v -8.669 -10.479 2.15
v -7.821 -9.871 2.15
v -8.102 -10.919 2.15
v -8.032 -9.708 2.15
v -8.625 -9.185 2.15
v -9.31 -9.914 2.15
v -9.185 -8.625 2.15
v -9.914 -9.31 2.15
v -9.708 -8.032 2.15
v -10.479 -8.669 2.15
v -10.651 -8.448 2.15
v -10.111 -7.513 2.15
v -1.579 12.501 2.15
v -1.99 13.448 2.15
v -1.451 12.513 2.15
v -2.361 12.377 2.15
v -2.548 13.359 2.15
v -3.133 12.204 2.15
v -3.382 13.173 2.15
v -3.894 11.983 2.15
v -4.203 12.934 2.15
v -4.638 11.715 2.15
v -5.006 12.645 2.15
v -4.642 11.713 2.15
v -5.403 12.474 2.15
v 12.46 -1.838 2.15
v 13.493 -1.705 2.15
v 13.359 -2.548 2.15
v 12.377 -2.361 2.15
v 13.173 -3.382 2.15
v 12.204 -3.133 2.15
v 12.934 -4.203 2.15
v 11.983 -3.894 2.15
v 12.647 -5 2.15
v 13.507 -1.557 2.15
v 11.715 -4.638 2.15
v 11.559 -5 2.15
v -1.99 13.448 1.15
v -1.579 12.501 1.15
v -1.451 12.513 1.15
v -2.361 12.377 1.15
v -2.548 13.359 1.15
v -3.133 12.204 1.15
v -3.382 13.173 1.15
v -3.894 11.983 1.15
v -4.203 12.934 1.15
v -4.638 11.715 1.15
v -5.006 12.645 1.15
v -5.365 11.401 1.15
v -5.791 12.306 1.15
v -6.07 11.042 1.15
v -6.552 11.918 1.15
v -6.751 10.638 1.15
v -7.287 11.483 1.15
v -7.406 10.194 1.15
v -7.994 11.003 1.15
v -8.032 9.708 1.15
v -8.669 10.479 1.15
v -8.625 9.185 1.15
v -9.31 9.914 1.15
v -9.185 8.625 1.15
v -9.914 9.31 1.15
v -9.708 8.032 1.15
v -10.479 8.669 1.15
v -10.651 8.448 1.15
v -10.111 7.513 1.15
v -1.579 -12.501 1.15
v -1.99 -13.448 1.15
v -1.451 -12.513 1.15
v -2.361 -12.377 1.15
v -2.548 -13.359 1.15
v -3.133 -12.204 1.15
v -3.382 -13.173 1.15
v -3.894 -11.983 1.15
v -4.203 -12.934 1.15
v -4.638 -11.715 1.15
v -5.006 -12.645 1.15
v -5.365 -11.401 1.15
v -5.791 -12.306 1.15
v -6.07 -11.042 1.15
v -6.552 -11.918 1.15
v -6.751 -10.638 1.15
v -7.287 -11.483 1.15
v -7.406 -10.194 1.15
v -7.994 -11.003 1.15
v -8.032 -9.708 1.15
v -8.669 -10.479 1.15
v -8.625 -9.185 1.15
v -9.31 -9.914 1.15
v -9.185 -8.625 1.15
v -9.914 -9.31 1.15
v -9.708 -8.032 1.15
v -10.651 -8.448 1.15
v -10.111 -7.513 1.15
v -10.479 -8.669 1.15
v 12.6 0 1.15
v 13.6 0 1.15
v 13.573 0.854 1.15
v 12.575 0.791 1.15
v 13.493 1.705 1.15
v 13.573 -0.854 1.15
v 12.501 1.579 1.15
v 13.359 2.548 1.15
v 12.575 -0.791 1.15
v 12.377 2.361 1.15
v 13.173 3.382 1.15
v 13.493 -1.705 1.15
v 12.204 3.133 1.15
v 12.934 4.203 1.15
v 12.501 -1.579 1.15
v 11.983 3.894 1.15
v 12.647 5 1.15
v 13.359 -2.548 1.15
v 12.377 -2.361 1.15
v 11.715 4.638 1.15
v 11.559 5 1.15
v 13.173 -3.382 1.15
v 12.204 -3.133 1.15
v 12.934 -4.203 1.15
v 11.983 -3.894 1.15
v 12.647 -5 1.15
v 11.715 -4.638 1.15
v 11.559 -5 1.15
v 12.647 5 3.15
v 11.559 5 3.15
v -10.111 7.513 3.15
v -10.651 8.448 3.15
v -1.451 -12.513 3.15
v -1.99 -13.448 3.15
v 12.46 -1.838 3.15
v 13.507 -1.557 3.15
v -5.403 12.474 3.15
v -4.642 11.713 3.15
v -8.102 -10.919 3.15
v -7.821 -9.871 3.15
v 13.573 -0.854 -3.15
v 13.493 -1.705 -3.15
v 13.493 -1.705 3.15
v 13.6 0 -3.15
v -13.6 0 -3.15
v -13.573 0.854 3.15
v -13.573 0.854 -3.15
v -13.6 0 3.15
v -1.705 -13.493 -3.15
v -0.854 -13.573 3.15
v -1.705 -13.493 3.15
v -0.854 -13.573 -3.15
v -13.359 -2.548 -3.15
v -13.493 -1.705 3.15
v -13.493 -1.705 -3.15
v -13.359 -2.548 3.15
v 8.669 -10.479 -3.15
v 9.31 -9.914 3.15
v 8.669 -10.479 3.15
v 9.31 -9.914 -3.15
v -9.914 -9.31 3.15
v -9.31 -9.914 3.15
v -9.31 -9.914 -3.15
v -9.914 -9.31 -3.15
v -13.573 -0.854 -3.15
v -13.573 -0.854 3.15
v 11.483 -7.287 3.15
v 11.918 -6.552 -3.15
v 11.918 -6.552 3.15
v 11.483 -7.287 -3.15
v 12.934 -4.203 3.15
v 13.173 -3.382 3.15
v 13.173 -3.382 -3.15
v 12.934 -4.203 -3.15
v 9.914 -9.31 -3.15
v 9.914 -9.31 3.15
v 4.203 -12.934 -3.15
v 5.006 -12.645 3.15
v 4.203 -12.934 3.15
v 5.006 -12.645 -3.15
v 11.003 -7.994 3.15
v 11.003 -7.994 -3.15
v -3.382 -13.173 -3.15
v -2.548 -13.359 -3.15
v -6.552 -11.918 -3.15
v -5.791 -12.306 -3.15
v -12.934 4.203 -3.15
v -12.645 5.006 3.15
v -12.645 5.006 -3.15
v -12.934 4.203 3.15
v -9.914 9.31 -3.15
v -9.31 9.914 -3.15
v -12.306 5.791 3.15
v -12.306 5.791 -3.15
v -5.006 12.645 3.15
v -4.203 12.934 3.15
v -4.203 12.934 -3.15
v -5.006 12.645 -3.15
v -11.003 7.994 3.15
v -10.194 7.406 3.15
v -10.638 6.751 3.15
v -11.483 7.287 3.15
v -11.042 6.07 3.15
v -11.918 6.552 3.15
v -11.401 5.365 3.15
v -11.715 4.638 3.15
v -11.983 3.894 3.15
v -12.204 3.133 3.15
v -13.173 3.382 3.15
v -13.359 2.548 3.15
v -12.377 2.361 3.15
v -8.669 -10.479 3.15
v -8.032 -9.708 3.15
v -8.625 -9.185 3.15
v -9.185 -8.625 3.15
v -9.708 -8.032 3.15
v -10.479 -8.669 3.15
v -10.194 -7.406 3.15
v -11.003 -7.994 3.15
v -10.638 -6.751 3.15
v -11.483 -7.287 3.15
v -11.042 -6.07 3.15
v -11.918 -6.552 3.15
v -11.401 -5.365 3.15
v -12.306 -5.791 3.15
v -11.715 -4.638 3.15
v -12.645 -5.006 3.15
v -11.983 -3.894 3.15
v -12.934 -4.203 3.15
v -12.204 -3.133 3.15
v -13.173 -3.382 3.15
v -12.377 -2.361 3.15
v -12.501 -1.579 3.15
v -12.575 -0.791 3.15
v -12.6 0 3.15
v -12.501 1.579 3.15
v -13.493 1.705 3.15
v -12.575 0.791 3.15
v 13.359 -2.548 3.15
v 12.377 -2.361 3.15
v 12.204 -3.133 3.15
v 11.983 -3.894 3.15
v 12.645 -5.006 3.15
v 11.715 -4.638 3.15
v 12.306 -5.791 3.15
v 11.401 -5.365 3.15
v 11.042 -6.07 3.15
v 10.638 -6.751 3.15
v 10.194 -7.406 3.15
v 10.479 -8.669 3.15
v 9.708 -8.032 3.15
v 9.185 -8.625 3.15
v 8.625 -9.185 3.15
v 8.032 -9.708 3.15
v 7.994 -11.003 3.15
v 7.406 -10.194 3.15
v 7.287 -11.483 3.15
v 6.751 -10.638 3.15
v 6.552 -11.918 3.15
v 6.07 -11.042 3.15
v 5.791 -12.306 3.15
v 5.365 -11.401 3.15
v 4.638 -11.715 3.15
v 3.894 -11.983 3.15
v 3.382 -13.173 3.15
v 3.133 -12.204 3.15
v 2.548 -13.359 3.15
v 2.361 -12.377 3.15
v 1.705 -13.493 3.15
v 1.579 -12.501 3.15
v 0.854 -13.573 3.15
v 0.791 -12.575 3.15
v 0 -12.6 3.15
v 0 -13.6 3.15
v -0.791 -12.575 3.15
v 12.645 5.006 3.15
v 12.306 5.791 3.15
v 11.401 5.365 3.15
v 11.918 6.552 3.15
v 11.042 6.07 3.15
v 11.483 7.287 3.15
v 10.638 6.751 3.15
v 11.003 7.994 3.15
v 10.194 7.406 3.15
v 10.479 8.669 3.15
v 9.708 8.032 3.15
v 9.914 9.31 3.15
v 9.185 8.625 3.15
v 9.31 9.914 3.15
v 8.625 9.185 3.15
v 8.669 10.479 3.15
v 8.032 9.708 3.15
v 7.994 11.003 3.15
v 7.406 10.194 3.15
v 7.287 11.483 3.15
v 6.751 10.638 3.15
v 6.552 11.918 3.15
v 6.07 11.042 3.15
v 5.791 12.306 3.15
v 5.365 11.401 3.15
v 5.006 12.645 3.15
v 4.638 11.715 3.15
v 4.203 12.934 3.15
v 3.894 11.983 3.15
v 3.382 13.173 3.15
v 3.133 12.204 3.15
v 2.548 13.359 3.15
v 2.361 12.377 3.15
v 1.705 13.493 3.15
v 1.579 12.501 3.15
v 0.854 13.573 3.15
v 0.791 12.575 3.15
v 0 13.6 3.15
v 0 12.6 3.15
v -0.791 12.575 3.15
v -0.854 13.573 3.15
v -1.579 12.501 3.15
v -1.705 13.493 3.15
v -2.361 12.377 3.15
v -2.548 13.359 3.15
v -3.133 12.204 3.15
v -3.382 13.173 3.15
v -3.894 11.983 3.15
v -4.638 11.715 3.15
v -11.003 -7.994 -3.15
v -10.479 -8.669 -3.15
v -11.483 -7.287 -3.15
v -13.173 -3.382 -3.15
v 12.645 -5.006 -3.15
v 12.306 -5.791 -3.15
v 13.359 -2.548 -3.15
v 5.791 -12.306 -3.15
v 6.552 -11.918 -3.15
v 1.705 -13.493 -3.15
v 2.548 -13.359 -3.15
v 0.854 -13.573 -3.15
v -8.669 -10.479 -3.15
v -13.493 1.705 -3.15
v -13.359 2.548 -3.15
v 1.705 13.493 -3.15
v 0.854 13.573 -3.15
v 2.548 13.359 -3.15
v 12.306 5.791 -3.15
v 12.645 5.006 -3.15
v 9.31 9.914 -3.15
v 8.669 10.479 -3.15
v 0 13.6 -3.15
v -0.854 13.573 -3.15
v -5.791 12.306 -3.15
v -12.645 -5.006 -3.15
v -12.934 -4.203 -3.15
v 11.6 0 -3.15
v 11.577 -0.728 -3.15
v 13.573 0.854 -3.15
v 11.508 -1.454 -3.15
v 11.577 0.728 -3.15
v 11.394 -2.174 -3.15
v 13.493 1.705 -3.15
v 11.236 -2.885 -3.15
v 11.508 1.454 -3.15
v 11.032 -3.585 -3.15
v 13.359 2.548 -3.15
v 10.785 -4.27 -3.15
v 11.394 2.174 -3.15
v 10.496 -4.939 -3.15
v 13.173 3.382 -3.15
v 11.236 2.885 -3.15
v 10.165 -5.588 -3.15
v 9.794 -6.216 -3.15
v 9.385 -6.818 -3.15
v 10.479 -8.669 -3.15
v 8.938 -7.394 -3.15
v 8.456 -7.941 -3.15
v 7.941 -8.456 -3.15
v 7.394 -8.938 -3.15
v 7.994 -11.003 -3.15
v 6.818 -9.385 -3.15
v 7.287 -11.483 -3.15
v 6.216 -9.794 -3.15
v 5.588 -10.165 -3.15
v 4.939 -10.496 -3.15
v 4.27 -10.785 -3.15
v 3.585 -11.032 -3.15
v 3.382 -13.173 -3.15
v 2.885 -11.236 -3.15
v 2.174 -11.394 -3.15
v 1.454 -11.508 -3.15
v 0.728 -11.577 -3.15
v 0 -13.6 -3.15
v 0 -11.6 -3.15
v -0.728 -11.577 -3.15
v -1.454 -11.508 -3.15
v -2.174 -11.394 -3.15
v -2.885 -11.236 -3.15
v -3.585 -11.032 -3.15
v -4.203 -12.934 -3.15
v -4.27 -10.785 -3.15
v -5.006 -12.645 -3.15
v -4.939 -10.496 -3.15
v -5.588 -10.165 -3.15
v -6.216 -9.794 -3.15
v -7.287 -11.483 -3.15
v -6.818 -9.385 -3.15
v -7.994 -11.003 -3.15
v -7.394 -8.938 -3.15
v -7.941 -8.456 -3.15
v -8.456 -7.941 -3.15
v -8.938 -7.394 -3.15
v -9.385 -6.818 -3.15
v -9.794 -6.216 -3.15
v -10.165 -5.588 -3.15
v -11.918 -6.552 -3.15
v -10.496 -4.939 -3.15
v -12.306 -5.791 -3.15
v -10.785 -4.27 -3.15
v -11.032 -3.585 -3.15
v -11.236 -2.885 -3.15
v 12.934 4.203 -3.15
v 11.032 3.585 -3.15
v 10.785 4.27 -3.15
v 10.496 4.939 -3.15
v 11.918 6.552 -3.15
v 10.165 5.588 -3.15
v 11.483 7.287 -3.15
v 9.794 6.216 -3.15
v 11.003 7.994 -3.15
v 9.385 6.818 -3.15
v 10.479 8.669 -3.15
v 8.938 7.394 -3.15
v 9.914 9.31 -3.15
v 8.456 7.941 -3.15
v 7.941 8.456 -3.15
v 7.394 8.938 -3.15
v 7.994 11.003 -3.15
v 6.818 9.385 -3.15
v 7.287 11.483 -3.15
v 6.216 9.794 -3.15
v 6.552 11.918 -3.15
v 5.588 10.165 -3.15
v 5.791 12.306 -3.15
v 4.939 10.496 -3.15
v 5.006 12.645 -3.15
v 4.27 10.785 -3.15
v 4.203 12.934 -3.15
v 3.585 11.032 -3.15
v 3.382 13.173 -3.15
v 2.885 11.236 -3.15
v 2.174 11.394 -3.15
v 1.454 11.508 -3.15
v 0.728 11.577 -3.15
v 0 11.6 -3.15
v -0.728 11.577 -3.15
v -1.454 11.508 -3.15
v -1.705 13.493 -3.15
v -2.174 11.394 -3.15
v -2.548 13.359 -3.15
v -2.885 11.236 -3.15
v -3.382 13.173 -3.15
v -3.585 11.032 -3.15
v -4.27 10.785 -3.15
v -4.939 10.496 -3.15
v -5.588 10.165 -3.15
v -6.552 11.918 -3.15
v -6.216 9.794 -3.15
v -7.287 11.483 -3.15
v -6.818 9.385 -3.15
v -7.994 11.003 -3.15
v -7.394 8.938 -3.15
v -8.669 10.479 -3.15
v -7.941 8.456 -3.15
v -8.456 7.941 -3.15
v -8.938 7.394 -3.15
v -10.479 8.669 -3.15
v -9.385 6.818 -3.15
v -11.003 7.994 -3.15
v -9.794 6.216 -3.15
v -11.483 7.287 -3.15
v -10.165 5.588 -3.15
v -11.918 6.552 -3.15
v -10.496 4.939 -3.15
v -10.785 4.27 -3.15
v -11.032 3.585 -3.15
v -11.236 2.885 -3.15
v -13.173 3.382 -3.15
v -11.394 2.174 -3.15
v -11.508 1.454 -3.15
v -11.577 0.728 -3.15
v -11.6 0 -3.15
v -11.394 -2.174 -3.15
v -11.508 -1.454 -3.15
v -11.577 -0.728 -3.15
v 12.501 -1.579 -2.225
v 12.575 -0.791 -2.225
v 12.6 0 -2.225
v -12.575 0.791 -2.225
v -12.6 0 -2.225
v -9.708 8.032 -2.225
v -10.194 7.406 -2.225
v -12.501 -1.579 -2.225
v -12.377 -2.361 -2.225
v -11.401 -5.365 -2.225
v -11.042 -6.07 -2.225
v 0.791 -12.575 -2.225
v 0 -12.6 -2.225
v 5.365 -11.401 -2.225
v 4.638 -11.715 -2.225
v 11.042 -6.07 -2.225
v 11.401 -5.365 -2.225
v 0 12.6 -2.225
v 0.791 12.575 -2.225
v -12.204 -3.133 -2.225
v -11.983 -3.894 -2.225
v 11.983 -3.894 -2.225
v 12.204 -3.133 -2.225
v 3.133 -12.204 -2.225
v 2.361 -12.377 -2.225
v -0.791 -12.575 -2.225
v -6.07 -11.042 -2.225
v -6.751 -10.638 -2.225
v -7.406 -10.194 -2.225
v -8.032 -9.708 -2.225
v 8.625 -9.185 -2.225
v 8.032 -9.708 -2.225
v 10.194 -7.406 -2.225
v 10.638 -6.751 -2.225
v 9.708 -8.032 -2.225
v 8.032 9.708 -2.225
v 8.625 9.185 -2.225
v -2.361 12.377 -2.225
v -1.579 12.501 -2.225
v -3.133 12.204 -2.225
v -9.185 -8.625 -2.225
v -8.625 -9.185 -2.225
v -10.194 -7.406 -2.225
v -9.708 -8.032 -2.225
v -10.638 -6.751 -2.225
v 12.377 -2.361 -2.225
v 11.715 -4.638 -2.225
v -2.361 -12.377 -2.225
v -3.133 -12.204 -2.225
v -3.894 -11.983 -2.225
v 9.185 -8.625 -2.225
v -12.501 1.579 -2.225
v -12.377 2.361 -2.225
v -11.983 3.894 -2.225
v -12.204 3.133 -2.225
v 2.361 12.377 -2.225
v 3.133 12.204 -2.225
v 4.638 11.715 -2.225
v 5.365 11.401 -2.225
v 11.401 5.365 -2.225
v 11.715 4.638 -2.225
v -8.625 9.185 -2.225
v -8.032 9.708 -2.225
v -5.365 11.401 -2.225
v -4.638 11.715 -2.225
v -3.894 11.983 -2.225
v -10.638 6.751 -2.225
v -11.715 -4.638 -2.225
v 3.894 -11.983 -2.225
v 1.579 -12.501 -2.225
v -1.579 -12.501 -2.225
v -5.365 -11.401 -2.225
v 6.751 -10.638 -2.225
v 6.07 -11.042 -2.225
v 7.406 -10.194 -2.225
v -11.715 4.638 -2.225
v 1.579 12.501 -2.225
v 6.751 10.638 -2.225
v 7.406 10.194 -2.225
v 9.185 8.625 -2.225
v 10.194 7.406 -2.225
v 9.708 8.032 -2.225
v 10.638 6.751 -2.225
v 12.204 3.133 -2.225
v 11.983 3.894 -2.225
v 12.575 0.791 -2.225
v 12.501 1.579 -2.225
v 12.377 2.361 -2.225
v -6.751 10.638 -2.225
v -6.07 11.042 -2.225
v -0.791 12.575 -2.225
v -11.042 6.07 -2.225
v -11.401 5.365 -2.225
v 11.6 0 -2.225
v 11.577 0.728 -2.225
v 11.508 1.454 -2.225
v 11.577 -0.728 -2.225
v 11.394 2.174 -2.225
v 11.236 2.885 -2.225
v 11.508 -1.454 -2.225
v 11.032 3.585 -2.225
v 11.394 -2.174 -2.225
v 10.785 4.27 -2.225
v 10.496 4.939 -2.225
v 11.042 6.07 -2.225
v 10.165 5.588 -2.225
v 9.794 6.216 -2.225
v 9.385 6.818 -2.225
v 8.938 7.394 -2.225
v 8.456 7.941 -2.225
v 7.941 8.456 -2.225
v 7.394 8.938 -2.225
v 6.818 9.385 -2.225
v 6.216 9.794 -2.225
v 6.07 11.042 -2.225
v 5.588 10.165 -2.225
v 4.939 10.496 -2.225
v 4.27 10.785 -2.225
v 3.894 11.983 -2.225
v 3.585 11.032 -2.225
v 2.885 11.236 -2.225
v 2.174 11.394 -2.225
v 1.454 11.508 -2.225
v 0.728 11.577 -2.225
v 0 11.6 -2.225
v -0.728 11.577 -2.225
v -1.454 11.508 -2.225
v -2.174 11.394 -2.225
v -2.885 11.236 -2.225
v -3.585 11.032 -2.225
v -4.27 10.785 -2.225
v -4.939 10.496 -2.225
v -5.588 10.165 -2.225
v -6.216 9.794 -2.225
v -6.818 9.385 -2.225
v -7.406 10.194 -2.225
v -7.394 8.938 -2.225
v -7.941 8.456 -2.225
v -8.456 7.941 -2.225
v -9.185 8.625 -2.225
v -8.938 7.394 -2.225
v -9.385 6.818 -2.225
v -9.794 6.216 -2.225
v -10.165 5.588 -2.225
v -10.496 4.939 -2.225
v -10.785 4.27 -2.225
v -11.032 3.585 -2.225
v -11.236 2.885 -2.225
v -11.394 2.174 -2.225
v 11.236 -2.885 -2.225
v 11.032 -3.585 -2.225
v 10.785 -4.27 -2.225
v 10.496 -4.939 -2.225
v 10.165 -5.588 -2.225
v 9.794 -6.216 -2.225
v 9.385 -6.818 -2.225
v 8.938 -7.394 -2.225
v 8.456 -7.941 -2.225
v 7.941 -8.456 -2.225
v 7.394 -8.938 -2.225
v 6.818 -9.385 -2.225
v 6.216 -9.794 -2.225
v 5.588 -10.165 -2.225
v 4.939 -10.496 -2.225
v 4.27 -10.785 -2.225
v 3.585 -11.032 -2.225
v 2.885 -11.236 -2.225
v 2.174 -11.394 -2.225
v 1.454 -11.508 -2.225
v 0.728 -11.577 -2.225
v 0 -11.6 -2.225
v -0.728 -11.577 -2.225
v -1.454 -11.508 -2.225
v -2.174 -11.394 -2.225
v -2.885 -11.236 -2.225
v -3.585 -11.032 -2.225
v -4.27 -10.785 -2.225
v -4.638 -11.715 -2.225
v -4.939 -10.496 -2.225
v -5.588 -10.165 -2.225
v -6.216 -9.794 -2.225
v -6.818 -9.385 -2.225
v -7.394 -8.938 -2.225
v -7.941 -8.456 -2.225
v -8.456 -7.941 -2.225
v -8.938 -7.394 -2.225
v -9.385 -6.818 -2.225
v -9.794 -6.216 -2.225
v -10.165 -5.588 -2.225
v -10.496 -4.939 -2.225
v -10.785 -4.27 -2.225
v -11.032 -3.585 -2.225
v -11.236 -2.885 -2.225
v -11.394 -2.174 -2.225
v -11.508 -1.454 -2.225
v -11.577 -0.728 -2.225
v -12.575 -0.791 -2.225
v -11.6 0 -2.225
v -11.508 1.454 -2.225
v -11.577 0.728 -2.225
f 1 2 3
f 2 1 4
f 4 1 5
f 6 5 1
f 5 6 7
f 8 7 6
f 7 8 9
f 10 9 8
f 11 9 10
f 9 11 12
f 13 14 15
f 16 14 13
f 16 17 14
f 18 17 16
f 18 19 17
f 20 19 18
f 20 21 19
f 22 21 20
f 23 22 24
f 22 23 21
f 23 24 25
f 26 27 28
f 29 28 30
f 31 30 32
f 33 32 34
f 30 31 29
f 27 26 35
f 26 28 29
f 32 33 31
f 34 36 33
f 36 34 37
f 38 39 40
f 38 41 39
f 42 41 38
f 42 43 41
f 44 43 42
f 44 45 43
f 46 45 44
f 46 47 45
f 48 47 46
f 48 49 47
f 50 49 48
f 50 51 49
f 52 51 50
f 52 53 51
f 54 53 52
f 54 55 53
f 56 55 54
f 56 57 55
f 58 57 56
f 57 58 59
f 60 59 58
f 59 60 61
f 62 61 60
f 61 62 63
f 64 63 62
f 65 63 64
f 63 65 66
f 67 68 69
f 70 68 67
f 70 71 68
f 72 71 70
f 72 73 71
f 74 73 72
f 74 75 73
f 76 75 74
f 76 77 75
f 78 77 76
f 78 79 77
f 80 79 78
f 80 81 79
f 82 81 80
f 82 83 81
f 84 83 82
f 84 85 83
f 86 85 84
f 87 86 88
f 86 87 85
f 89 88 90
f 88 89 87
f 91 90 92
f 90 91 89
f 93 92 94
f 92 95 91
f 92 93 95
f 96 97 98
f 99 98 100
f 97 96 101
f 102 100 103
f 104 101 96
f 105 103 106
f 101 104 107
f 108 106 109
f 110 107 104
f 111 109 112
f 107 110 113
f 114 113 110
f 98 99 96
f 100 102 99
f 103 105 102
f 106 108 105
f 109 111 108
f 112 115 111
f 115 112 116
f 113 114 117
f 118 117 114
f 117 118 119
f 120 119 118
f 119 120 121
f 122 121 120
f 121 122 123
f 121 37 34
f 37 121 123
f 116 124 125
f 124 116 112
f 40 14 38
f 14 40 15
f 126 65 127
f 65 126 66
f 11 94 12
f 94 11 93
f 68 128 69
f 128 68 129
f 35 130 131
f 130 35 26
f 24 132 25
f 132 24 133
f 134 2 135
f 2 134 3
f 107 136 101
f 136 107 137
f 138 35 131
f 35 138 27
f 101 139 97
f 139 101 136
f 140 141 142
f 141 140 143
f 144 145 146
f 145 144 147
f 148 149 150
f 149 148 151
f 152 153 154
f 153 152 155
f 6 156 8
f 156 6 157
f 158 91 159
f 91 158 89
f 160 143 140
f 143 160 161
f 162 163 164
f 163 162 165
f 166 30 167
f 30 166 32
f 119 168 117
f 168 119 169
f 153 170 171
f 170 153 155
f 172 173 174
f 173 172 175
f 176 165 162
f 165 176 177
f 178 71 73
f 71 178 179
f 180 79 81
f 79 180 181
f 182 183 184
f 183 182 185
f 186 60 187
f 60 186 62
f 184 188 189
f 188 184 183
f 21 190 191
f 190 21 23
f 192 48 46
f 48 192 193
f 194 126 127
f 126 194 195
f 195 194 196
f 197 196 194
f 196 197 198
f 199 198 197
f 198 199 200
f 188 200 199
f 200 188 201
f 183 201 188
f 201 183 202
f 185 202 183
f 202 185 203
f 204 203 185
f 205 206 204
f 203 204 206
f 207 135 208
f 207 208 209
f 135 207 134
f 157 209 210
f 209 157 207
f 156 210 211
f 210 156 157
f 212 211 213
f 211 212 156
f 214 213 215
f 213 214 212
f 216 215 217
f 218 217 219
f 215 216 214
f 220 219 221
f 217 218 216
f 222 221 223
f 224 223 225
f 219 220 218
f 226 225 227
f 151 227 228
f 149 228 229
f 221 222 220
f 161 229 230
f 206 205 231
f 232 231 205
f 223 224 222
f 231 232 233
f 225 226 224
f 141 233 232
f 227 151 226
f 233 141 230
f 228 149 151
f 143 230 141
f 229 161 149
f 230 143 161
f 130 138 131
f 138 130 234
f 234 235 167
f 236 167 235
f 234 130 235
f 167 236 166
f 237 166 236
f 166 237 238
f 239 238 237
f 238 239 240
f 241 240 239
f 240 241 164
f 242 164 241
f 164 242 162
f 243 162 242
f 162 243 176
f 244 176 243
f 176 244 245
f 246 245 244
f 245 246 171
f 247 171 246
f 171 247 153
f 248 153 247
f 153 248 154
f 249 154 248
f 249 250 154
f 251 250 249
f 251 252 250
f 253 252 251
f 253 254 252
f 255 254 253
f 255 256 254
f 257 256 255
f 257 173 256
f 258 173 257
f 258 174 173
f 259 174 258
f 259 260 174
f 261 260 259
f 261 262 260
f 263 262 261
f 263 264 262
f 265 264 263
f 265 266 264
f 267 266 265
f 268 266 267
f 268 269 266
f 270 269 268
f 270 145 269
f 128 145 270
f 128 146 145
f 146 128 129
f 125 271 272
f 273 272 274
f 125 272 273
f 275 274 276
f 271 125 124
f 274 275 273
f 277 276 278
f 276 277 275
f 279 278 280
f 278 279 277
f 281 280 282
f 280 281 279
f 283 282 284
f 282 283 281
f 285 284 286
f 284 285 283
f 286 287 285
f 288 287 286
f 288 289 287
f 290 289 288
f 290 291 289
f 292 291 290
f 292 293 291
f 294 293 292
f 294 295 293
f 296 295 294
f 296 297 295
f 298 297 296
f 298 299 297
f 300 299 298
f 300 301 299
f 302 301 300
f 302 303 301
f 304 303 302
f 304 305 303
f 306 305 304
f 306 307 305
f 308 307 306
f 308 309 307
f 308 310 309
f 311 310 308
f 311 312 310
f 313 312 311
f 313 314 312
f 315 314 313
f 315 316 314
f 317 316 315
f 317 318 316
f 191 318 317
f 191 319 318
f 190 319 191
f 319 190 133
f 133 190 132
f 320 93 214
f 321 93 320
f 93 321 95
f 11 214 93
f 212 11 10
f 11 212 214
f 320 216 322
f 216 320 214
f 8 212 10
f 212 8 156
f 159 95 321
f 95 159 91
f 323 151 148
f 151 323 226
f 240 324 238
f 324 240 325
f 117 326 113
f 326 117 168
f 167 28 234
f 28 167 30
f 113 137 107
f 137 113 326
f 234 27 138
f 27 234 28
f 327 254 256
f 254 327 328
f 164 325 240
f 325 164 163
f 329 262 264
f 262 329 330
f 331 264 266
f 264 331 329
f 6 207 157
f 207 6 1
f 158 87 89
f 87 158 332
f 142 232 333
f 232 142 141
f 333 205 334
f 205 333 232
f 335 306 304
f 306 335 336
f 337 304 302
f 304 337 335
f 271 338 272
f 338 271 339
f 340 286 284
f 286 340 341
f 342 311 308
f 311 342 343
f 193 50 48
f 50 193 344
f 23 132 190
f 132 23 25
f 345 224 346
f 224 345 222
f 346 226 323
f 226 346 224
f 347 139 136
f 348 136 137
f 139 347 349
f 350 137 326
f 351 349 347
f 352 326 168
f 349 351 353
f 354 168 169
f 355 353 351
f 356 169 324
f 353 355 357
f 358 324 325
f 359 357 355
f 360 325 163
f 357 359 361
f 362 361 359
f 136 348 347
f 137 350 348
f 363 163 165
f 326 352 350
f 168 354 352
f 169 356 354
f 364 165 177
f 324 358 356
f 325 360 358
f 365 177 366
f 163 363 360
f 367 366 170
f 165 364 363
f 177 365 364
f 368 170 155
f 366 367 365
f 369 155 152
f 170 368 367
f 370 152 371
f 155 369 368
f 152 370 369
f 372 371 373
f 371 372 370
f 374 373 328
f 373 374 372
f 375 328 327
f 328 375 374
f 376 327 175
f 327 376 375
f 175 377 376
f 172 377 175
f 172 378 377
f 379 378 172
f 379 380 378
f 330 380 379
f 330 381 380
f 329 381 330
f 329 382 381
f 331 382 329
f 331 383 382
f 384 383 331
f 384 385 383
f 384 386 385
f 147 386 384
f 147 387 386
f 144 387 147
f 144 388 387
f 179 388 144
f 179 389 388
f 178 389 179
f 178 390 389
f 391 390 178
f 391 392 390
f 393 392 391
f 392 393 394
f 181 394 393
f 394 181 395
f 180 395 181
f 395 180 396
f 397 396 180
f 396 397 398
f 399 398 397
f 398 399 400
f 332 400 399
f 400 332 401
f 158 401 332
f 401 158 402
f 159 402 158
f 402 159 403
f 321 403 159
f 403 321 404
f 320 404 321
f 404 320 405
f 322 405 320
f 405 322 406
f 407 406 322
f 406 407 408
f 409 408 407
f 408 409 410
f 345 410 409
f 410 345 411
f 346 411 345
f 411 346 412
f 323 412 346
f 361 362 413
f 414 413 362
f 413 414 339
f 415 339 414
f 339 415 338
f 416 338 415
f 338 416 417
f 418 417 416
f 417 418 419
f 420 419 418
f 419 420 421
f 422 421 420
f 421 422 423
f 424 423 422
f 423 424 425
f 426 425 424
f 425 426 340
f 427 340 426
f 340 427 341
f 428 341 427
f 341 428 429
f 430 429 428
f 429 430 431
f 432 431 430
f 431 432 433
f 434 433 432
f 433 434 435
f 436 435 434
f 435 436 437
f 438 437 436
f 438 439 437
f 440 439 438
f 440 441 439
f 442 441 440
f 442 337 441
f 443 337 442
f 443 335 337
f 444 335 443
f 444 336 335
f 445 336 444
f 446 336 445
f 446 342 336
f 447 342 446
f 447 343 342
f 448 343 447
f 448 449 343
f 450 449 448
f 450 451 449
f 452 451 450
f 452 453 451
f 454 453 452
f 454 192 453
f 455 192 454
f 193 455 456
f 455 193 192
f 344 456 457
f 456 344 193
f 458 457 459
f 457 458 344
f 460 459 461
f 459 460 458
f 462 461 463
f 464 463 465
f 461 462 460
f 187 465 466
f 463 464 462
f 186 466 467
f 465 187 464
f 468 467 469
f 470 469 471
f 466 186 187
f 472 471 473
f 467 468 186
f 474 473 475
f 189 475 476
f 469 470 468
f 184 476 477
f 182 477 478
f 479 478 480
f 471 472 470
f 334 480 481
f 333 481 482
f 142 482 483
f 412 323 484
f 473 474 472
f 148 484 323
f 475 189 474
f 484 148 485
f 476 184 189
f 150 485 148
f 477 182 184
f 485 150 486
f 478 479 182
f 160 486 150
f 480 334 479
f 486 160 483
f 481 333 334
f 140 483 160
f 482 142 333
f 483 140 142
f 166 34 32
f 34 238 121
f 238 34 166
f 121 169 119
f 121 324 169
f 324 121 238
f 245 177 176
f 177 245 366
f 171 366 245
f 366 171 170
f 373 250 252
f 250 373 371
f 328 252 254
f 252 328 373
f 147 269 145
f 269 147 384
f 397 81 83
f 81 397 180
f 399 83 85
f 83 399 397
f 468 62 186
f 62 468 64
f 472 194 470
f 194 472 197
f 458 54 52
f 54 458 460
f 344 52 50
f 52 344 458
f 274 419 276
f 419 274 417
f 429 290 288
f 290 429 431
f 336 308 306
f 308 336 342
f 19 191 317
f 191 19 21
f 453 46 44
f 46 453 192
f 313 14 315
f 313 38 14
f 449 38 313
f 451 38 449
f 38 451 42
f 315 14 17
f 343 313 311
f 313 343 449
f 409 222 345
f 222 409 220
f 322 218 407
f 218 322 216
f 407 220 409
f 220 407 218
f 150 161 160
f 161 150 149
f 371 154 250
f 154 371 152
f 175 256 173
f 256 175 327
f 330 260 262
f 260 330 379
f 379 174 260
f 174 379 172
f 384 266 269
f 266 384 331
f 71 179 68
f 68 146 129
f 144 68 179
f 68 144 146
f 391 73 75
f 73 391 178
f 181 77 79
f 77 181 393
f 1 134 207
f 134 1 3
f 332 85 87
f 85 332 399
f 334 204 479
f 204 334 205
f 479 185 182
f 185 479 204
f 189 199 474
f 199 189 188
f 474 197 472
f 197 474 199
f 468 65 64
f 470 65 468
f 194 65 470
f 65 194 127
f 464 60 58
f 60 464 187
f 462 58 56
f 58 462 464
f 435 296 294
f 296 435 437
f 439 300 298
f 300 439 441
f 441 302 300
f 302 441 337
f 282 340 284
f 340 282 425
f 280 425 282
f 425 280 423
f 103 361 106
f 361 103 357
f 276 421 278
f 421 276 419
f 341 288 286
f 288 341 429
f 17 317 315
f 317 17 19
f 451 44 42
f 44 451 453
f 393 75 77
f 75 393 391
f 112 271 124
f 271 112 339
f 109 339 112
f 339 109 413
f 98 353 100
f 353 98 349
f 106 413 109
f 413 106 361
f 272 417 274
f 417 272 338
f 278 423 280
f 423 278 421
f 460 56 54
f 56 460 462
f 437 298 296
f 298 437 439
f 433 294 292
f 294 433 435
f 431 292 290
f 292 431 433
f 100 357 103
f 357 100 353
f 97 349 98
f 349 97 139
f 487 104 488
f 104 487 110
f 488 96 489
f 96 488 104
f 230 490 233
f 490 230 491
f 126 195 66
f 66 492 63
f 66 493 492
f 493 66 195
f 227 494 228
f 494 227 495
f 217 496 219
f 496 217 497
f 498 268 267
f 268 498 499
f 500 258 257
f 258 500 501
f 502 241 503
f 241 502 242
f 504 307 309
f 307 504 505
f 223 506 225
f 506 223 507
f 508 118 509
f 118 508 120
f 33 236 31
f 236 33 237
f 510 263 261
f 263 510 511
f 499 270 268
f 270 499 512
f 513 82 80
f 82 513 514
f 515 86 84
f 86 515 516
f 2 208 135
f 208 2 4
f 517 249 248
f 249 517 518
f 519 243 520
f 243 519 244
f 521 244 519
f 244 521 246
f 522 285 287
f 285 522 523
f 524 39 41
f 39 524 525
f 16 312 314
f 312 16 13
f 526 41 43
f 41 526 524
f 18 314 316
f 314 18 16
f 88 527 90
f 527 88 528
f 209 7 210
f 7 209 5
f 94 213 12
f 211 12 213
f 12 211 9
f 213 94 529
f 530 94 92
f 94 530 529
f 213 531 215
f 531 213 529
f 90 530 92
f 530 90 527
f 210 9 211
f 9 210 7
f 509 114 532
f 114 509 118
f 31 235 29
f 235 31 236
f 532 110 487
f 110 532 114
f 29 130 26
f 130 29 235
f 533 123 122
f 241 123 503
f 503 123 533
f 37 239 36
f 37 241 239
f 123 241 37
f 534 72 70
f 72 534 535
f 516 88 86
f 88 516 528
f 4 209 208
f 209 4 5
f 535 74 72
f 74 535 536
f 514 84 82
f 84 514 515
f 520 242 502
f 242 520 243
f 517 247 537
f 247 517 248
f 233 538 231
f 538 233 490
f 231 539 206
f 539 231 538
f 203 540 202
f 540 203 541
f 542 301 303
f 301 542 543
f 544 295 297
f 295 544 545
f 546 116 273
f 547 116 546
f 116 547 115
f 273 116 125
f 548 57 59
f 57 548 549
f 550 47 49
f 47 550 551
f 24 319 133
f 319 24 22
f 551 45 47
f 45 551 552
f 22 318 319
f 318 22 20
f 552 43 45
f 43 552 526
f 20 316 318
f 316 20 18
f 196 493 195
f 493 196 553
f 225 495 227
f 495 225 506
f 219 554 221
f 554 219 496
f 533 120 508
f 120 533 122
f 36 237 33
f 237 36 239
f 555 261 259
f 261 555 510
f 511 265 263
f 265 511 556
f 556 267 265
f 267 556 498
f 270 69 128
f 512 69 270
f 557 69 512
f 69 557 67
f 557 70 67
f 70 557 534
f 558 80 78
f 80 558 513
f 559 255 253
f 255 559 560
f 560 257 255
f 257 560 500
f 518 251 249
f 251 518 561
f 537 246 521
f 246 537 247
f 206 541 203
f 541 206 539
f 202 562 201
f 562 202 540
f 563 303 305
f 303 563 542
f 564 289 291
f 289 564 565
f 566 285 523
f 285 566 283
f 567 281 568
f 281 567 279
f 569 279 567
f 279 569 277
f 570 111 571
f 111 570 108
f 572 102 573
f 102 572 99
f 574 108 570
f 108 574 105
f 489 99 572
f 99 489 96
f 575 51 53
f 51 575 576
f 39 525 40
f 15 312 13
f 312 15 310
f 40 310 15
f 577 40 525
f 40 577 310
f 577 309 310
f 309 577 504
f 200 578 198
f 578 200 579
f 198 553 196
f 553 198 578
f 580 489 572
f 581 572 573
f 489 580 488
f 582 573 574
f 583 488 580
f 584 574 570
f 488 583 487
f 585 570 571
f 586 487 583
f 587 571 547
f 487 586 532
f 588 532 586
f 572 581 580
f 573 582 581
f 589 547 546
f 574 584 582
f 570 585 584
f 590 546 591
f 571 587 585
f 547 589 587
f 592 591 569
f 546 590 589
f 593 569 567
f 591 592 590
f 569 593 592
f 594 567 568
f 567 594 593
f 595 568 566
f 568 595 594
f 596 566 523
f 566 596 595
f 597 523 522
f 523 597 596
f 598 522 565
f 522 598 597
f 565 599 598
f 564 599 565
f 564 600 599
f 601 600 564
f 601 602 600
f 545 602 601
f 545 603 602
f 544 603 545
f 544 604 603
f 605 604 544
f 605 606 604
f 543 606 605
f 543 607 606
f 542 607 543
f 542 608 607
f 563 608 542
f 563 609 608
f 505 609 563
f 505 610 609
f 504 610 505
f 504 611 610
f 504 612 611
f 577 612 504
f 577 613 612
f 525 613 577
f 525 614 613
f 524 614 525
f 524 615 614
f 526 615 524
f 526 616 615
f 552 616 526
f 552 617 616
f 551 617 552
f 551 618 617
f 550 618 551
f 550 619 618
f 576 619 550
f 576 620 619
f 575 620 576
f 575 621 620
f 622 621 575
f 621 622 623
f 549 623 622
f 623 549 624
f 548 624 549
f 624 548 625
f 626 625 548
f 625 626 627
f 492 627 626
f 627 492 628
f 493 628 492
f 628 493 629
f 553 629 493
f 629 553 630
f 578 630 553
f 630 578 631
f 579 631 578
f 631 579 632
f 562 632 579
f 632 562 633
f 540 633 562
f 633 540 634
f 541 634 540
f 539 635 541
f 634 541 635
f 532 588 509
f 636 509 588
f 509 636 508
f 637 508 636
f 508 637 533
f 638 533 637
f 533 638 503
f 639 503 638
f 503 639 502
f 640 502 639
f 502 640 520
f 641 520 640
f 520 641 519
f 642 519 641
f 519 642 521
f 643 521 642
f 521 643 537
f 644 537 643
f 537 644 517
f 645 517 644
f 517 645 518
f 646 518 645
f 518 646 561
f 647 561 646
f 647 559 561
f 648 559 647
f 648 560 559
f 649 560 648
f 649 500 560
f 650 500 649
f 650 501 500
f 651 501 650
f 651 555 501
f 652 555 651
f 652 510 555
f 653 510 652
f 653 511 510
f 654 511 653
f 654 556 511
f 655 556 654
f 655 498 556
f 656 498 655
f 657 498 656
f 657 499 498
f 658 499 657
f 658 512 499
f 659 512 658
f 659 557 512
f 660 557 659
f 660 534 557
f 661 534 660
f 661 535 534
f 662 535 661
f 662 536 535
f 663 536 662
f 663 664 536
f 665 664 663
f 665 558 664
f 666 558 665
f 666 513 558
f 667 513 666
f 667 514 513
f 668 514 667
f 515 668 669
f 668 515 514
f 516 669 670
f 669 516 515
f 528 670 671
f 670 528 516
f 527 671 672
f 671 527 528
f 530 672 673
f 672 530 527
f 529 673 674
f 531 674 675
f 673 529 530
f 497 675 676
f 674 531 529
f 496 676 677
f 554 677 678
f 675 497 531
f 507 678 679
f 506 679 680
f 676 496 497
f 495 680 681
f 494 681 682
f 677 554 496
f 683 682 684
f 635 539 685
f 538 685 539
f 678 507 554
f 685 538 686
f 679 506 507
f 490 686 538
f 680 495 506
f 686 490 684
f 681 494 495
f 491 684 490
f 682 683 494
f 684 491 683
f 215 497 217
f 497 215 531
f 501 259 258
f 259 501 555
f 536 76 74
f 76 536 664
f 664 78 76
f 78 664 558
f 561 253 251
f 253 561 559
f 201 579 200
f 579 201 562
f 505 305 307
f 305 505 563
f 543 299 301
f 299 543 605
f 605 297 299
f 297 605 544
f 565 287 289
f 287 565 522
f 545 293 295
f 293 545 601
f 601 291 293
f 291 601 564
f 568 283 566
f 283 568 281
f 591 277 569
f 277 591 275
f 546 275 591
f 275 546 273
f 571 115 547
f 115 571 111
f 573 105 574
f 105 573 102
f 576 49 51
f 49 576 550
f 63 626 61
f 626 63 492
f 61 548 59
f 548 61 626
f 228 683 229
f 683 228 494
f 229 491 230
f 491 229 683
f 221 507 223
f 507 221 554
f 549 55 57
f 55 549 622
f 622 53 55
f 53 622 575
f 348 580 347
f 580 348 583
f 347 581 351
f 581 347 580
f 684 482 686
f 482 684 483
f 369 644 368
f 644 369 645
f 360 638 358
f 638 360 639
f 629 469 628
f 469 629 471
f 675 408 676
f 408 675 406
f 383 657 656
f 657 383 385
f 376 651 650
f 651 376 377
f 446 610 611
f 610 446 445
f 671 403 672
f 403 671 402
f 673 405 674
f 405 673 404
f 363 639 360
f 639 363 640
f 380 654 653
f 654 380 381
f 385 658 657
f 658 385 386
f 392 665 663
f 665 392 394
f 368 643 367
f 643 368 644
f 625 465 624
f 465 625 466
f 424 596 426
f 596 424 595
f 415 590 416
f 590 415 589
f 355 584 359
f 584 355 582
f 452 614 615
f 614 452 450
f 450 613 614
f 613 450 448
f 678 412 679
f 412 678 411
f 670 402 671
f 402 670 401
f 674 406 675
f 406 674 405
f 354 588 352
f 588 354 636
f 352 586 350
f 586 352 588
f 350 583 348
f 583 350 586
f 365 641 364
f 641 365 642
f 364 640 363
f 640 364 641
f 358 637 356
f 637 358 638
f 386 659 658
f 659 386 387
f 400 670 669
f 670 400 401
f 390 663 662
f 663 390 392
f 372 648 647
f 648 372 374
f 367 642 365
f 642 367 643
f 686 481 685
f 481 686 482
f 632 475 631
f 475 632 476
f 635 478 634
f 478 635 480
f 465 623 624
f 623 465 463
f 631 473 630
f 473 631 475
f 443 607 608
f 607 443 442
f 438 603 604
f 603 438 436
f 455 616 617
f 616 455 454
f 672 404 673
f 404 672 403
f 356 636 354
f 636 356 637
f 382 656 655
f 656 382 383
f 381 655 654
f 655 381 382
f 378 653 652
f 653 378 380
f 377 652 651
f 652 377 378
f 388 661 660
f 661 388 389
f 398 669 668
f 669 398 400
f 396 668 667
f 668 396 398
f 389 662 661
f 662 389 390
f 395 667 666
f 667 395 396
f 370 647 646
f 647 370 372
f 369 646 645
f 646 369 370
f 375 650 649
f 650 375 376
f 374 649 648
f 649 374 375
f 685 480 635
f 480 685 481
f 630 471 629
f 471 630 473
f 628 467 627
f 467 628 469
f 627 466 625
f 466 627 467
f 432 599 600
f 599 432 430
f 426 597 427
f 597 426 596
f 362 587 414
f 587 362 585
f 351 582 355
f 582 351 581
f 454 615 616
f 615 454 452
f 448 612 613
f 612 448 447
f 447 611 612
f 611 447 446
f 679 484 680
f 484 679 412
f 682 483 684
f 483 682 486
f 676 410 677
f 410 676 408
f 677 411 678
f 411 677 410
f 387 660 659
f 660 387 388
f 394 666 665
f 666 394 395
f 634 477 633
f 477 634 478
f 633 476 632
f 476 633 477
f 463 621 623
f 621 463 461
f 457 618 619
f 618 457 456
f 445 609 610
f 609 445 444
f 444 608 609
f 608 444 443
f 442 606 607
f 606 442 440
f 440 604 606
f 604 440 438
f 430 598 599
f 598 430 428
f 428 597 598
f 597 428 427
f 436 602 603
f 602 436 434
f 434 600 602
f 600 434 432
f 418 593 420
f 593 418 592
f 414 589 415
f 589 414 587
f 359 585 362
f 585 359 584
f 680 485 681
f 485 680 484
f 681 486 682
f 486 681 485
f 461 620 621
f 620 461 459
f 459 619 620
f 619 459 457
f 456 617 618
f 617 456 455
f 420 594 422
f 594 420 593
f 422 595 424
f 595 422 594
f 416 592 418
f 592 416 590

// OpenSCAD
/*
    
    With this code you can make a filter holder to attach it to the lens focus wheel used for the camera in the FluoPi project.
    
    Isaac Núñez 2020 (CC BY 4.0; https://creativecommons.org/licenses/by/4.0/) 
 
*/

////////////////
// Parameters //


ri = 12.6;   //filter radius
side_thick = 1 ;
filter_thick = 3;
filter_free_space = 0.5;
bottom_thick = 0.8;
h_clam = 2;
free_clam_space = 10;
angles1 = [0,120,240];
angles2 = [15,135,255];

rb = ri-1;
re = ri +side_thick;
h_int = h_clam + filter_thick +filter_free_space; //internal h
h_ext = h_clam + filter_thick +filter_free_space + bottom_thick; //external h


////////////////////////////////////

module clam_space(length, wide, thickness, angles){

for(ang = angles){
   rotate([0,0,ang])
    translate([length/2, 0, 0])
   cube([length, wide, thickness], center = true);
}
}



////////////////////////
// Create the holder //


    difference(){
linear_extrude(height = h_ext, center = true, convexity = 10, twist = 0,$fn = 100)
circle(re);
                translate([0,0,bottom_thick])
        linear_extrude(height = h_int*1.1, center = true, convexity = 10, twist = 0,$fn = 100)

circle(ri);
    translate([0,0,-bottom_thick])          linear_extrude(height = h_int*1.1, center = true, convexity = 10, twist = 0,$fn = 100)
circle(rb);
                    translate([0,0,h_ext/2-h_clam/2 - h_clam/4]) 
        clam_space(re*1.5, free_clam_space ,h_clam/2, angles1);

                               translate([0,0,h_ext/2-0.8*h_clam/2.1])  
intersection() {

        clam_space(re*1.5, free_clam_space ,h_clam*0.8, angles1);

        clam_space(re*1.5, free_clam_space ,h_clam*0.8, angles2);
}
        
    }


    
